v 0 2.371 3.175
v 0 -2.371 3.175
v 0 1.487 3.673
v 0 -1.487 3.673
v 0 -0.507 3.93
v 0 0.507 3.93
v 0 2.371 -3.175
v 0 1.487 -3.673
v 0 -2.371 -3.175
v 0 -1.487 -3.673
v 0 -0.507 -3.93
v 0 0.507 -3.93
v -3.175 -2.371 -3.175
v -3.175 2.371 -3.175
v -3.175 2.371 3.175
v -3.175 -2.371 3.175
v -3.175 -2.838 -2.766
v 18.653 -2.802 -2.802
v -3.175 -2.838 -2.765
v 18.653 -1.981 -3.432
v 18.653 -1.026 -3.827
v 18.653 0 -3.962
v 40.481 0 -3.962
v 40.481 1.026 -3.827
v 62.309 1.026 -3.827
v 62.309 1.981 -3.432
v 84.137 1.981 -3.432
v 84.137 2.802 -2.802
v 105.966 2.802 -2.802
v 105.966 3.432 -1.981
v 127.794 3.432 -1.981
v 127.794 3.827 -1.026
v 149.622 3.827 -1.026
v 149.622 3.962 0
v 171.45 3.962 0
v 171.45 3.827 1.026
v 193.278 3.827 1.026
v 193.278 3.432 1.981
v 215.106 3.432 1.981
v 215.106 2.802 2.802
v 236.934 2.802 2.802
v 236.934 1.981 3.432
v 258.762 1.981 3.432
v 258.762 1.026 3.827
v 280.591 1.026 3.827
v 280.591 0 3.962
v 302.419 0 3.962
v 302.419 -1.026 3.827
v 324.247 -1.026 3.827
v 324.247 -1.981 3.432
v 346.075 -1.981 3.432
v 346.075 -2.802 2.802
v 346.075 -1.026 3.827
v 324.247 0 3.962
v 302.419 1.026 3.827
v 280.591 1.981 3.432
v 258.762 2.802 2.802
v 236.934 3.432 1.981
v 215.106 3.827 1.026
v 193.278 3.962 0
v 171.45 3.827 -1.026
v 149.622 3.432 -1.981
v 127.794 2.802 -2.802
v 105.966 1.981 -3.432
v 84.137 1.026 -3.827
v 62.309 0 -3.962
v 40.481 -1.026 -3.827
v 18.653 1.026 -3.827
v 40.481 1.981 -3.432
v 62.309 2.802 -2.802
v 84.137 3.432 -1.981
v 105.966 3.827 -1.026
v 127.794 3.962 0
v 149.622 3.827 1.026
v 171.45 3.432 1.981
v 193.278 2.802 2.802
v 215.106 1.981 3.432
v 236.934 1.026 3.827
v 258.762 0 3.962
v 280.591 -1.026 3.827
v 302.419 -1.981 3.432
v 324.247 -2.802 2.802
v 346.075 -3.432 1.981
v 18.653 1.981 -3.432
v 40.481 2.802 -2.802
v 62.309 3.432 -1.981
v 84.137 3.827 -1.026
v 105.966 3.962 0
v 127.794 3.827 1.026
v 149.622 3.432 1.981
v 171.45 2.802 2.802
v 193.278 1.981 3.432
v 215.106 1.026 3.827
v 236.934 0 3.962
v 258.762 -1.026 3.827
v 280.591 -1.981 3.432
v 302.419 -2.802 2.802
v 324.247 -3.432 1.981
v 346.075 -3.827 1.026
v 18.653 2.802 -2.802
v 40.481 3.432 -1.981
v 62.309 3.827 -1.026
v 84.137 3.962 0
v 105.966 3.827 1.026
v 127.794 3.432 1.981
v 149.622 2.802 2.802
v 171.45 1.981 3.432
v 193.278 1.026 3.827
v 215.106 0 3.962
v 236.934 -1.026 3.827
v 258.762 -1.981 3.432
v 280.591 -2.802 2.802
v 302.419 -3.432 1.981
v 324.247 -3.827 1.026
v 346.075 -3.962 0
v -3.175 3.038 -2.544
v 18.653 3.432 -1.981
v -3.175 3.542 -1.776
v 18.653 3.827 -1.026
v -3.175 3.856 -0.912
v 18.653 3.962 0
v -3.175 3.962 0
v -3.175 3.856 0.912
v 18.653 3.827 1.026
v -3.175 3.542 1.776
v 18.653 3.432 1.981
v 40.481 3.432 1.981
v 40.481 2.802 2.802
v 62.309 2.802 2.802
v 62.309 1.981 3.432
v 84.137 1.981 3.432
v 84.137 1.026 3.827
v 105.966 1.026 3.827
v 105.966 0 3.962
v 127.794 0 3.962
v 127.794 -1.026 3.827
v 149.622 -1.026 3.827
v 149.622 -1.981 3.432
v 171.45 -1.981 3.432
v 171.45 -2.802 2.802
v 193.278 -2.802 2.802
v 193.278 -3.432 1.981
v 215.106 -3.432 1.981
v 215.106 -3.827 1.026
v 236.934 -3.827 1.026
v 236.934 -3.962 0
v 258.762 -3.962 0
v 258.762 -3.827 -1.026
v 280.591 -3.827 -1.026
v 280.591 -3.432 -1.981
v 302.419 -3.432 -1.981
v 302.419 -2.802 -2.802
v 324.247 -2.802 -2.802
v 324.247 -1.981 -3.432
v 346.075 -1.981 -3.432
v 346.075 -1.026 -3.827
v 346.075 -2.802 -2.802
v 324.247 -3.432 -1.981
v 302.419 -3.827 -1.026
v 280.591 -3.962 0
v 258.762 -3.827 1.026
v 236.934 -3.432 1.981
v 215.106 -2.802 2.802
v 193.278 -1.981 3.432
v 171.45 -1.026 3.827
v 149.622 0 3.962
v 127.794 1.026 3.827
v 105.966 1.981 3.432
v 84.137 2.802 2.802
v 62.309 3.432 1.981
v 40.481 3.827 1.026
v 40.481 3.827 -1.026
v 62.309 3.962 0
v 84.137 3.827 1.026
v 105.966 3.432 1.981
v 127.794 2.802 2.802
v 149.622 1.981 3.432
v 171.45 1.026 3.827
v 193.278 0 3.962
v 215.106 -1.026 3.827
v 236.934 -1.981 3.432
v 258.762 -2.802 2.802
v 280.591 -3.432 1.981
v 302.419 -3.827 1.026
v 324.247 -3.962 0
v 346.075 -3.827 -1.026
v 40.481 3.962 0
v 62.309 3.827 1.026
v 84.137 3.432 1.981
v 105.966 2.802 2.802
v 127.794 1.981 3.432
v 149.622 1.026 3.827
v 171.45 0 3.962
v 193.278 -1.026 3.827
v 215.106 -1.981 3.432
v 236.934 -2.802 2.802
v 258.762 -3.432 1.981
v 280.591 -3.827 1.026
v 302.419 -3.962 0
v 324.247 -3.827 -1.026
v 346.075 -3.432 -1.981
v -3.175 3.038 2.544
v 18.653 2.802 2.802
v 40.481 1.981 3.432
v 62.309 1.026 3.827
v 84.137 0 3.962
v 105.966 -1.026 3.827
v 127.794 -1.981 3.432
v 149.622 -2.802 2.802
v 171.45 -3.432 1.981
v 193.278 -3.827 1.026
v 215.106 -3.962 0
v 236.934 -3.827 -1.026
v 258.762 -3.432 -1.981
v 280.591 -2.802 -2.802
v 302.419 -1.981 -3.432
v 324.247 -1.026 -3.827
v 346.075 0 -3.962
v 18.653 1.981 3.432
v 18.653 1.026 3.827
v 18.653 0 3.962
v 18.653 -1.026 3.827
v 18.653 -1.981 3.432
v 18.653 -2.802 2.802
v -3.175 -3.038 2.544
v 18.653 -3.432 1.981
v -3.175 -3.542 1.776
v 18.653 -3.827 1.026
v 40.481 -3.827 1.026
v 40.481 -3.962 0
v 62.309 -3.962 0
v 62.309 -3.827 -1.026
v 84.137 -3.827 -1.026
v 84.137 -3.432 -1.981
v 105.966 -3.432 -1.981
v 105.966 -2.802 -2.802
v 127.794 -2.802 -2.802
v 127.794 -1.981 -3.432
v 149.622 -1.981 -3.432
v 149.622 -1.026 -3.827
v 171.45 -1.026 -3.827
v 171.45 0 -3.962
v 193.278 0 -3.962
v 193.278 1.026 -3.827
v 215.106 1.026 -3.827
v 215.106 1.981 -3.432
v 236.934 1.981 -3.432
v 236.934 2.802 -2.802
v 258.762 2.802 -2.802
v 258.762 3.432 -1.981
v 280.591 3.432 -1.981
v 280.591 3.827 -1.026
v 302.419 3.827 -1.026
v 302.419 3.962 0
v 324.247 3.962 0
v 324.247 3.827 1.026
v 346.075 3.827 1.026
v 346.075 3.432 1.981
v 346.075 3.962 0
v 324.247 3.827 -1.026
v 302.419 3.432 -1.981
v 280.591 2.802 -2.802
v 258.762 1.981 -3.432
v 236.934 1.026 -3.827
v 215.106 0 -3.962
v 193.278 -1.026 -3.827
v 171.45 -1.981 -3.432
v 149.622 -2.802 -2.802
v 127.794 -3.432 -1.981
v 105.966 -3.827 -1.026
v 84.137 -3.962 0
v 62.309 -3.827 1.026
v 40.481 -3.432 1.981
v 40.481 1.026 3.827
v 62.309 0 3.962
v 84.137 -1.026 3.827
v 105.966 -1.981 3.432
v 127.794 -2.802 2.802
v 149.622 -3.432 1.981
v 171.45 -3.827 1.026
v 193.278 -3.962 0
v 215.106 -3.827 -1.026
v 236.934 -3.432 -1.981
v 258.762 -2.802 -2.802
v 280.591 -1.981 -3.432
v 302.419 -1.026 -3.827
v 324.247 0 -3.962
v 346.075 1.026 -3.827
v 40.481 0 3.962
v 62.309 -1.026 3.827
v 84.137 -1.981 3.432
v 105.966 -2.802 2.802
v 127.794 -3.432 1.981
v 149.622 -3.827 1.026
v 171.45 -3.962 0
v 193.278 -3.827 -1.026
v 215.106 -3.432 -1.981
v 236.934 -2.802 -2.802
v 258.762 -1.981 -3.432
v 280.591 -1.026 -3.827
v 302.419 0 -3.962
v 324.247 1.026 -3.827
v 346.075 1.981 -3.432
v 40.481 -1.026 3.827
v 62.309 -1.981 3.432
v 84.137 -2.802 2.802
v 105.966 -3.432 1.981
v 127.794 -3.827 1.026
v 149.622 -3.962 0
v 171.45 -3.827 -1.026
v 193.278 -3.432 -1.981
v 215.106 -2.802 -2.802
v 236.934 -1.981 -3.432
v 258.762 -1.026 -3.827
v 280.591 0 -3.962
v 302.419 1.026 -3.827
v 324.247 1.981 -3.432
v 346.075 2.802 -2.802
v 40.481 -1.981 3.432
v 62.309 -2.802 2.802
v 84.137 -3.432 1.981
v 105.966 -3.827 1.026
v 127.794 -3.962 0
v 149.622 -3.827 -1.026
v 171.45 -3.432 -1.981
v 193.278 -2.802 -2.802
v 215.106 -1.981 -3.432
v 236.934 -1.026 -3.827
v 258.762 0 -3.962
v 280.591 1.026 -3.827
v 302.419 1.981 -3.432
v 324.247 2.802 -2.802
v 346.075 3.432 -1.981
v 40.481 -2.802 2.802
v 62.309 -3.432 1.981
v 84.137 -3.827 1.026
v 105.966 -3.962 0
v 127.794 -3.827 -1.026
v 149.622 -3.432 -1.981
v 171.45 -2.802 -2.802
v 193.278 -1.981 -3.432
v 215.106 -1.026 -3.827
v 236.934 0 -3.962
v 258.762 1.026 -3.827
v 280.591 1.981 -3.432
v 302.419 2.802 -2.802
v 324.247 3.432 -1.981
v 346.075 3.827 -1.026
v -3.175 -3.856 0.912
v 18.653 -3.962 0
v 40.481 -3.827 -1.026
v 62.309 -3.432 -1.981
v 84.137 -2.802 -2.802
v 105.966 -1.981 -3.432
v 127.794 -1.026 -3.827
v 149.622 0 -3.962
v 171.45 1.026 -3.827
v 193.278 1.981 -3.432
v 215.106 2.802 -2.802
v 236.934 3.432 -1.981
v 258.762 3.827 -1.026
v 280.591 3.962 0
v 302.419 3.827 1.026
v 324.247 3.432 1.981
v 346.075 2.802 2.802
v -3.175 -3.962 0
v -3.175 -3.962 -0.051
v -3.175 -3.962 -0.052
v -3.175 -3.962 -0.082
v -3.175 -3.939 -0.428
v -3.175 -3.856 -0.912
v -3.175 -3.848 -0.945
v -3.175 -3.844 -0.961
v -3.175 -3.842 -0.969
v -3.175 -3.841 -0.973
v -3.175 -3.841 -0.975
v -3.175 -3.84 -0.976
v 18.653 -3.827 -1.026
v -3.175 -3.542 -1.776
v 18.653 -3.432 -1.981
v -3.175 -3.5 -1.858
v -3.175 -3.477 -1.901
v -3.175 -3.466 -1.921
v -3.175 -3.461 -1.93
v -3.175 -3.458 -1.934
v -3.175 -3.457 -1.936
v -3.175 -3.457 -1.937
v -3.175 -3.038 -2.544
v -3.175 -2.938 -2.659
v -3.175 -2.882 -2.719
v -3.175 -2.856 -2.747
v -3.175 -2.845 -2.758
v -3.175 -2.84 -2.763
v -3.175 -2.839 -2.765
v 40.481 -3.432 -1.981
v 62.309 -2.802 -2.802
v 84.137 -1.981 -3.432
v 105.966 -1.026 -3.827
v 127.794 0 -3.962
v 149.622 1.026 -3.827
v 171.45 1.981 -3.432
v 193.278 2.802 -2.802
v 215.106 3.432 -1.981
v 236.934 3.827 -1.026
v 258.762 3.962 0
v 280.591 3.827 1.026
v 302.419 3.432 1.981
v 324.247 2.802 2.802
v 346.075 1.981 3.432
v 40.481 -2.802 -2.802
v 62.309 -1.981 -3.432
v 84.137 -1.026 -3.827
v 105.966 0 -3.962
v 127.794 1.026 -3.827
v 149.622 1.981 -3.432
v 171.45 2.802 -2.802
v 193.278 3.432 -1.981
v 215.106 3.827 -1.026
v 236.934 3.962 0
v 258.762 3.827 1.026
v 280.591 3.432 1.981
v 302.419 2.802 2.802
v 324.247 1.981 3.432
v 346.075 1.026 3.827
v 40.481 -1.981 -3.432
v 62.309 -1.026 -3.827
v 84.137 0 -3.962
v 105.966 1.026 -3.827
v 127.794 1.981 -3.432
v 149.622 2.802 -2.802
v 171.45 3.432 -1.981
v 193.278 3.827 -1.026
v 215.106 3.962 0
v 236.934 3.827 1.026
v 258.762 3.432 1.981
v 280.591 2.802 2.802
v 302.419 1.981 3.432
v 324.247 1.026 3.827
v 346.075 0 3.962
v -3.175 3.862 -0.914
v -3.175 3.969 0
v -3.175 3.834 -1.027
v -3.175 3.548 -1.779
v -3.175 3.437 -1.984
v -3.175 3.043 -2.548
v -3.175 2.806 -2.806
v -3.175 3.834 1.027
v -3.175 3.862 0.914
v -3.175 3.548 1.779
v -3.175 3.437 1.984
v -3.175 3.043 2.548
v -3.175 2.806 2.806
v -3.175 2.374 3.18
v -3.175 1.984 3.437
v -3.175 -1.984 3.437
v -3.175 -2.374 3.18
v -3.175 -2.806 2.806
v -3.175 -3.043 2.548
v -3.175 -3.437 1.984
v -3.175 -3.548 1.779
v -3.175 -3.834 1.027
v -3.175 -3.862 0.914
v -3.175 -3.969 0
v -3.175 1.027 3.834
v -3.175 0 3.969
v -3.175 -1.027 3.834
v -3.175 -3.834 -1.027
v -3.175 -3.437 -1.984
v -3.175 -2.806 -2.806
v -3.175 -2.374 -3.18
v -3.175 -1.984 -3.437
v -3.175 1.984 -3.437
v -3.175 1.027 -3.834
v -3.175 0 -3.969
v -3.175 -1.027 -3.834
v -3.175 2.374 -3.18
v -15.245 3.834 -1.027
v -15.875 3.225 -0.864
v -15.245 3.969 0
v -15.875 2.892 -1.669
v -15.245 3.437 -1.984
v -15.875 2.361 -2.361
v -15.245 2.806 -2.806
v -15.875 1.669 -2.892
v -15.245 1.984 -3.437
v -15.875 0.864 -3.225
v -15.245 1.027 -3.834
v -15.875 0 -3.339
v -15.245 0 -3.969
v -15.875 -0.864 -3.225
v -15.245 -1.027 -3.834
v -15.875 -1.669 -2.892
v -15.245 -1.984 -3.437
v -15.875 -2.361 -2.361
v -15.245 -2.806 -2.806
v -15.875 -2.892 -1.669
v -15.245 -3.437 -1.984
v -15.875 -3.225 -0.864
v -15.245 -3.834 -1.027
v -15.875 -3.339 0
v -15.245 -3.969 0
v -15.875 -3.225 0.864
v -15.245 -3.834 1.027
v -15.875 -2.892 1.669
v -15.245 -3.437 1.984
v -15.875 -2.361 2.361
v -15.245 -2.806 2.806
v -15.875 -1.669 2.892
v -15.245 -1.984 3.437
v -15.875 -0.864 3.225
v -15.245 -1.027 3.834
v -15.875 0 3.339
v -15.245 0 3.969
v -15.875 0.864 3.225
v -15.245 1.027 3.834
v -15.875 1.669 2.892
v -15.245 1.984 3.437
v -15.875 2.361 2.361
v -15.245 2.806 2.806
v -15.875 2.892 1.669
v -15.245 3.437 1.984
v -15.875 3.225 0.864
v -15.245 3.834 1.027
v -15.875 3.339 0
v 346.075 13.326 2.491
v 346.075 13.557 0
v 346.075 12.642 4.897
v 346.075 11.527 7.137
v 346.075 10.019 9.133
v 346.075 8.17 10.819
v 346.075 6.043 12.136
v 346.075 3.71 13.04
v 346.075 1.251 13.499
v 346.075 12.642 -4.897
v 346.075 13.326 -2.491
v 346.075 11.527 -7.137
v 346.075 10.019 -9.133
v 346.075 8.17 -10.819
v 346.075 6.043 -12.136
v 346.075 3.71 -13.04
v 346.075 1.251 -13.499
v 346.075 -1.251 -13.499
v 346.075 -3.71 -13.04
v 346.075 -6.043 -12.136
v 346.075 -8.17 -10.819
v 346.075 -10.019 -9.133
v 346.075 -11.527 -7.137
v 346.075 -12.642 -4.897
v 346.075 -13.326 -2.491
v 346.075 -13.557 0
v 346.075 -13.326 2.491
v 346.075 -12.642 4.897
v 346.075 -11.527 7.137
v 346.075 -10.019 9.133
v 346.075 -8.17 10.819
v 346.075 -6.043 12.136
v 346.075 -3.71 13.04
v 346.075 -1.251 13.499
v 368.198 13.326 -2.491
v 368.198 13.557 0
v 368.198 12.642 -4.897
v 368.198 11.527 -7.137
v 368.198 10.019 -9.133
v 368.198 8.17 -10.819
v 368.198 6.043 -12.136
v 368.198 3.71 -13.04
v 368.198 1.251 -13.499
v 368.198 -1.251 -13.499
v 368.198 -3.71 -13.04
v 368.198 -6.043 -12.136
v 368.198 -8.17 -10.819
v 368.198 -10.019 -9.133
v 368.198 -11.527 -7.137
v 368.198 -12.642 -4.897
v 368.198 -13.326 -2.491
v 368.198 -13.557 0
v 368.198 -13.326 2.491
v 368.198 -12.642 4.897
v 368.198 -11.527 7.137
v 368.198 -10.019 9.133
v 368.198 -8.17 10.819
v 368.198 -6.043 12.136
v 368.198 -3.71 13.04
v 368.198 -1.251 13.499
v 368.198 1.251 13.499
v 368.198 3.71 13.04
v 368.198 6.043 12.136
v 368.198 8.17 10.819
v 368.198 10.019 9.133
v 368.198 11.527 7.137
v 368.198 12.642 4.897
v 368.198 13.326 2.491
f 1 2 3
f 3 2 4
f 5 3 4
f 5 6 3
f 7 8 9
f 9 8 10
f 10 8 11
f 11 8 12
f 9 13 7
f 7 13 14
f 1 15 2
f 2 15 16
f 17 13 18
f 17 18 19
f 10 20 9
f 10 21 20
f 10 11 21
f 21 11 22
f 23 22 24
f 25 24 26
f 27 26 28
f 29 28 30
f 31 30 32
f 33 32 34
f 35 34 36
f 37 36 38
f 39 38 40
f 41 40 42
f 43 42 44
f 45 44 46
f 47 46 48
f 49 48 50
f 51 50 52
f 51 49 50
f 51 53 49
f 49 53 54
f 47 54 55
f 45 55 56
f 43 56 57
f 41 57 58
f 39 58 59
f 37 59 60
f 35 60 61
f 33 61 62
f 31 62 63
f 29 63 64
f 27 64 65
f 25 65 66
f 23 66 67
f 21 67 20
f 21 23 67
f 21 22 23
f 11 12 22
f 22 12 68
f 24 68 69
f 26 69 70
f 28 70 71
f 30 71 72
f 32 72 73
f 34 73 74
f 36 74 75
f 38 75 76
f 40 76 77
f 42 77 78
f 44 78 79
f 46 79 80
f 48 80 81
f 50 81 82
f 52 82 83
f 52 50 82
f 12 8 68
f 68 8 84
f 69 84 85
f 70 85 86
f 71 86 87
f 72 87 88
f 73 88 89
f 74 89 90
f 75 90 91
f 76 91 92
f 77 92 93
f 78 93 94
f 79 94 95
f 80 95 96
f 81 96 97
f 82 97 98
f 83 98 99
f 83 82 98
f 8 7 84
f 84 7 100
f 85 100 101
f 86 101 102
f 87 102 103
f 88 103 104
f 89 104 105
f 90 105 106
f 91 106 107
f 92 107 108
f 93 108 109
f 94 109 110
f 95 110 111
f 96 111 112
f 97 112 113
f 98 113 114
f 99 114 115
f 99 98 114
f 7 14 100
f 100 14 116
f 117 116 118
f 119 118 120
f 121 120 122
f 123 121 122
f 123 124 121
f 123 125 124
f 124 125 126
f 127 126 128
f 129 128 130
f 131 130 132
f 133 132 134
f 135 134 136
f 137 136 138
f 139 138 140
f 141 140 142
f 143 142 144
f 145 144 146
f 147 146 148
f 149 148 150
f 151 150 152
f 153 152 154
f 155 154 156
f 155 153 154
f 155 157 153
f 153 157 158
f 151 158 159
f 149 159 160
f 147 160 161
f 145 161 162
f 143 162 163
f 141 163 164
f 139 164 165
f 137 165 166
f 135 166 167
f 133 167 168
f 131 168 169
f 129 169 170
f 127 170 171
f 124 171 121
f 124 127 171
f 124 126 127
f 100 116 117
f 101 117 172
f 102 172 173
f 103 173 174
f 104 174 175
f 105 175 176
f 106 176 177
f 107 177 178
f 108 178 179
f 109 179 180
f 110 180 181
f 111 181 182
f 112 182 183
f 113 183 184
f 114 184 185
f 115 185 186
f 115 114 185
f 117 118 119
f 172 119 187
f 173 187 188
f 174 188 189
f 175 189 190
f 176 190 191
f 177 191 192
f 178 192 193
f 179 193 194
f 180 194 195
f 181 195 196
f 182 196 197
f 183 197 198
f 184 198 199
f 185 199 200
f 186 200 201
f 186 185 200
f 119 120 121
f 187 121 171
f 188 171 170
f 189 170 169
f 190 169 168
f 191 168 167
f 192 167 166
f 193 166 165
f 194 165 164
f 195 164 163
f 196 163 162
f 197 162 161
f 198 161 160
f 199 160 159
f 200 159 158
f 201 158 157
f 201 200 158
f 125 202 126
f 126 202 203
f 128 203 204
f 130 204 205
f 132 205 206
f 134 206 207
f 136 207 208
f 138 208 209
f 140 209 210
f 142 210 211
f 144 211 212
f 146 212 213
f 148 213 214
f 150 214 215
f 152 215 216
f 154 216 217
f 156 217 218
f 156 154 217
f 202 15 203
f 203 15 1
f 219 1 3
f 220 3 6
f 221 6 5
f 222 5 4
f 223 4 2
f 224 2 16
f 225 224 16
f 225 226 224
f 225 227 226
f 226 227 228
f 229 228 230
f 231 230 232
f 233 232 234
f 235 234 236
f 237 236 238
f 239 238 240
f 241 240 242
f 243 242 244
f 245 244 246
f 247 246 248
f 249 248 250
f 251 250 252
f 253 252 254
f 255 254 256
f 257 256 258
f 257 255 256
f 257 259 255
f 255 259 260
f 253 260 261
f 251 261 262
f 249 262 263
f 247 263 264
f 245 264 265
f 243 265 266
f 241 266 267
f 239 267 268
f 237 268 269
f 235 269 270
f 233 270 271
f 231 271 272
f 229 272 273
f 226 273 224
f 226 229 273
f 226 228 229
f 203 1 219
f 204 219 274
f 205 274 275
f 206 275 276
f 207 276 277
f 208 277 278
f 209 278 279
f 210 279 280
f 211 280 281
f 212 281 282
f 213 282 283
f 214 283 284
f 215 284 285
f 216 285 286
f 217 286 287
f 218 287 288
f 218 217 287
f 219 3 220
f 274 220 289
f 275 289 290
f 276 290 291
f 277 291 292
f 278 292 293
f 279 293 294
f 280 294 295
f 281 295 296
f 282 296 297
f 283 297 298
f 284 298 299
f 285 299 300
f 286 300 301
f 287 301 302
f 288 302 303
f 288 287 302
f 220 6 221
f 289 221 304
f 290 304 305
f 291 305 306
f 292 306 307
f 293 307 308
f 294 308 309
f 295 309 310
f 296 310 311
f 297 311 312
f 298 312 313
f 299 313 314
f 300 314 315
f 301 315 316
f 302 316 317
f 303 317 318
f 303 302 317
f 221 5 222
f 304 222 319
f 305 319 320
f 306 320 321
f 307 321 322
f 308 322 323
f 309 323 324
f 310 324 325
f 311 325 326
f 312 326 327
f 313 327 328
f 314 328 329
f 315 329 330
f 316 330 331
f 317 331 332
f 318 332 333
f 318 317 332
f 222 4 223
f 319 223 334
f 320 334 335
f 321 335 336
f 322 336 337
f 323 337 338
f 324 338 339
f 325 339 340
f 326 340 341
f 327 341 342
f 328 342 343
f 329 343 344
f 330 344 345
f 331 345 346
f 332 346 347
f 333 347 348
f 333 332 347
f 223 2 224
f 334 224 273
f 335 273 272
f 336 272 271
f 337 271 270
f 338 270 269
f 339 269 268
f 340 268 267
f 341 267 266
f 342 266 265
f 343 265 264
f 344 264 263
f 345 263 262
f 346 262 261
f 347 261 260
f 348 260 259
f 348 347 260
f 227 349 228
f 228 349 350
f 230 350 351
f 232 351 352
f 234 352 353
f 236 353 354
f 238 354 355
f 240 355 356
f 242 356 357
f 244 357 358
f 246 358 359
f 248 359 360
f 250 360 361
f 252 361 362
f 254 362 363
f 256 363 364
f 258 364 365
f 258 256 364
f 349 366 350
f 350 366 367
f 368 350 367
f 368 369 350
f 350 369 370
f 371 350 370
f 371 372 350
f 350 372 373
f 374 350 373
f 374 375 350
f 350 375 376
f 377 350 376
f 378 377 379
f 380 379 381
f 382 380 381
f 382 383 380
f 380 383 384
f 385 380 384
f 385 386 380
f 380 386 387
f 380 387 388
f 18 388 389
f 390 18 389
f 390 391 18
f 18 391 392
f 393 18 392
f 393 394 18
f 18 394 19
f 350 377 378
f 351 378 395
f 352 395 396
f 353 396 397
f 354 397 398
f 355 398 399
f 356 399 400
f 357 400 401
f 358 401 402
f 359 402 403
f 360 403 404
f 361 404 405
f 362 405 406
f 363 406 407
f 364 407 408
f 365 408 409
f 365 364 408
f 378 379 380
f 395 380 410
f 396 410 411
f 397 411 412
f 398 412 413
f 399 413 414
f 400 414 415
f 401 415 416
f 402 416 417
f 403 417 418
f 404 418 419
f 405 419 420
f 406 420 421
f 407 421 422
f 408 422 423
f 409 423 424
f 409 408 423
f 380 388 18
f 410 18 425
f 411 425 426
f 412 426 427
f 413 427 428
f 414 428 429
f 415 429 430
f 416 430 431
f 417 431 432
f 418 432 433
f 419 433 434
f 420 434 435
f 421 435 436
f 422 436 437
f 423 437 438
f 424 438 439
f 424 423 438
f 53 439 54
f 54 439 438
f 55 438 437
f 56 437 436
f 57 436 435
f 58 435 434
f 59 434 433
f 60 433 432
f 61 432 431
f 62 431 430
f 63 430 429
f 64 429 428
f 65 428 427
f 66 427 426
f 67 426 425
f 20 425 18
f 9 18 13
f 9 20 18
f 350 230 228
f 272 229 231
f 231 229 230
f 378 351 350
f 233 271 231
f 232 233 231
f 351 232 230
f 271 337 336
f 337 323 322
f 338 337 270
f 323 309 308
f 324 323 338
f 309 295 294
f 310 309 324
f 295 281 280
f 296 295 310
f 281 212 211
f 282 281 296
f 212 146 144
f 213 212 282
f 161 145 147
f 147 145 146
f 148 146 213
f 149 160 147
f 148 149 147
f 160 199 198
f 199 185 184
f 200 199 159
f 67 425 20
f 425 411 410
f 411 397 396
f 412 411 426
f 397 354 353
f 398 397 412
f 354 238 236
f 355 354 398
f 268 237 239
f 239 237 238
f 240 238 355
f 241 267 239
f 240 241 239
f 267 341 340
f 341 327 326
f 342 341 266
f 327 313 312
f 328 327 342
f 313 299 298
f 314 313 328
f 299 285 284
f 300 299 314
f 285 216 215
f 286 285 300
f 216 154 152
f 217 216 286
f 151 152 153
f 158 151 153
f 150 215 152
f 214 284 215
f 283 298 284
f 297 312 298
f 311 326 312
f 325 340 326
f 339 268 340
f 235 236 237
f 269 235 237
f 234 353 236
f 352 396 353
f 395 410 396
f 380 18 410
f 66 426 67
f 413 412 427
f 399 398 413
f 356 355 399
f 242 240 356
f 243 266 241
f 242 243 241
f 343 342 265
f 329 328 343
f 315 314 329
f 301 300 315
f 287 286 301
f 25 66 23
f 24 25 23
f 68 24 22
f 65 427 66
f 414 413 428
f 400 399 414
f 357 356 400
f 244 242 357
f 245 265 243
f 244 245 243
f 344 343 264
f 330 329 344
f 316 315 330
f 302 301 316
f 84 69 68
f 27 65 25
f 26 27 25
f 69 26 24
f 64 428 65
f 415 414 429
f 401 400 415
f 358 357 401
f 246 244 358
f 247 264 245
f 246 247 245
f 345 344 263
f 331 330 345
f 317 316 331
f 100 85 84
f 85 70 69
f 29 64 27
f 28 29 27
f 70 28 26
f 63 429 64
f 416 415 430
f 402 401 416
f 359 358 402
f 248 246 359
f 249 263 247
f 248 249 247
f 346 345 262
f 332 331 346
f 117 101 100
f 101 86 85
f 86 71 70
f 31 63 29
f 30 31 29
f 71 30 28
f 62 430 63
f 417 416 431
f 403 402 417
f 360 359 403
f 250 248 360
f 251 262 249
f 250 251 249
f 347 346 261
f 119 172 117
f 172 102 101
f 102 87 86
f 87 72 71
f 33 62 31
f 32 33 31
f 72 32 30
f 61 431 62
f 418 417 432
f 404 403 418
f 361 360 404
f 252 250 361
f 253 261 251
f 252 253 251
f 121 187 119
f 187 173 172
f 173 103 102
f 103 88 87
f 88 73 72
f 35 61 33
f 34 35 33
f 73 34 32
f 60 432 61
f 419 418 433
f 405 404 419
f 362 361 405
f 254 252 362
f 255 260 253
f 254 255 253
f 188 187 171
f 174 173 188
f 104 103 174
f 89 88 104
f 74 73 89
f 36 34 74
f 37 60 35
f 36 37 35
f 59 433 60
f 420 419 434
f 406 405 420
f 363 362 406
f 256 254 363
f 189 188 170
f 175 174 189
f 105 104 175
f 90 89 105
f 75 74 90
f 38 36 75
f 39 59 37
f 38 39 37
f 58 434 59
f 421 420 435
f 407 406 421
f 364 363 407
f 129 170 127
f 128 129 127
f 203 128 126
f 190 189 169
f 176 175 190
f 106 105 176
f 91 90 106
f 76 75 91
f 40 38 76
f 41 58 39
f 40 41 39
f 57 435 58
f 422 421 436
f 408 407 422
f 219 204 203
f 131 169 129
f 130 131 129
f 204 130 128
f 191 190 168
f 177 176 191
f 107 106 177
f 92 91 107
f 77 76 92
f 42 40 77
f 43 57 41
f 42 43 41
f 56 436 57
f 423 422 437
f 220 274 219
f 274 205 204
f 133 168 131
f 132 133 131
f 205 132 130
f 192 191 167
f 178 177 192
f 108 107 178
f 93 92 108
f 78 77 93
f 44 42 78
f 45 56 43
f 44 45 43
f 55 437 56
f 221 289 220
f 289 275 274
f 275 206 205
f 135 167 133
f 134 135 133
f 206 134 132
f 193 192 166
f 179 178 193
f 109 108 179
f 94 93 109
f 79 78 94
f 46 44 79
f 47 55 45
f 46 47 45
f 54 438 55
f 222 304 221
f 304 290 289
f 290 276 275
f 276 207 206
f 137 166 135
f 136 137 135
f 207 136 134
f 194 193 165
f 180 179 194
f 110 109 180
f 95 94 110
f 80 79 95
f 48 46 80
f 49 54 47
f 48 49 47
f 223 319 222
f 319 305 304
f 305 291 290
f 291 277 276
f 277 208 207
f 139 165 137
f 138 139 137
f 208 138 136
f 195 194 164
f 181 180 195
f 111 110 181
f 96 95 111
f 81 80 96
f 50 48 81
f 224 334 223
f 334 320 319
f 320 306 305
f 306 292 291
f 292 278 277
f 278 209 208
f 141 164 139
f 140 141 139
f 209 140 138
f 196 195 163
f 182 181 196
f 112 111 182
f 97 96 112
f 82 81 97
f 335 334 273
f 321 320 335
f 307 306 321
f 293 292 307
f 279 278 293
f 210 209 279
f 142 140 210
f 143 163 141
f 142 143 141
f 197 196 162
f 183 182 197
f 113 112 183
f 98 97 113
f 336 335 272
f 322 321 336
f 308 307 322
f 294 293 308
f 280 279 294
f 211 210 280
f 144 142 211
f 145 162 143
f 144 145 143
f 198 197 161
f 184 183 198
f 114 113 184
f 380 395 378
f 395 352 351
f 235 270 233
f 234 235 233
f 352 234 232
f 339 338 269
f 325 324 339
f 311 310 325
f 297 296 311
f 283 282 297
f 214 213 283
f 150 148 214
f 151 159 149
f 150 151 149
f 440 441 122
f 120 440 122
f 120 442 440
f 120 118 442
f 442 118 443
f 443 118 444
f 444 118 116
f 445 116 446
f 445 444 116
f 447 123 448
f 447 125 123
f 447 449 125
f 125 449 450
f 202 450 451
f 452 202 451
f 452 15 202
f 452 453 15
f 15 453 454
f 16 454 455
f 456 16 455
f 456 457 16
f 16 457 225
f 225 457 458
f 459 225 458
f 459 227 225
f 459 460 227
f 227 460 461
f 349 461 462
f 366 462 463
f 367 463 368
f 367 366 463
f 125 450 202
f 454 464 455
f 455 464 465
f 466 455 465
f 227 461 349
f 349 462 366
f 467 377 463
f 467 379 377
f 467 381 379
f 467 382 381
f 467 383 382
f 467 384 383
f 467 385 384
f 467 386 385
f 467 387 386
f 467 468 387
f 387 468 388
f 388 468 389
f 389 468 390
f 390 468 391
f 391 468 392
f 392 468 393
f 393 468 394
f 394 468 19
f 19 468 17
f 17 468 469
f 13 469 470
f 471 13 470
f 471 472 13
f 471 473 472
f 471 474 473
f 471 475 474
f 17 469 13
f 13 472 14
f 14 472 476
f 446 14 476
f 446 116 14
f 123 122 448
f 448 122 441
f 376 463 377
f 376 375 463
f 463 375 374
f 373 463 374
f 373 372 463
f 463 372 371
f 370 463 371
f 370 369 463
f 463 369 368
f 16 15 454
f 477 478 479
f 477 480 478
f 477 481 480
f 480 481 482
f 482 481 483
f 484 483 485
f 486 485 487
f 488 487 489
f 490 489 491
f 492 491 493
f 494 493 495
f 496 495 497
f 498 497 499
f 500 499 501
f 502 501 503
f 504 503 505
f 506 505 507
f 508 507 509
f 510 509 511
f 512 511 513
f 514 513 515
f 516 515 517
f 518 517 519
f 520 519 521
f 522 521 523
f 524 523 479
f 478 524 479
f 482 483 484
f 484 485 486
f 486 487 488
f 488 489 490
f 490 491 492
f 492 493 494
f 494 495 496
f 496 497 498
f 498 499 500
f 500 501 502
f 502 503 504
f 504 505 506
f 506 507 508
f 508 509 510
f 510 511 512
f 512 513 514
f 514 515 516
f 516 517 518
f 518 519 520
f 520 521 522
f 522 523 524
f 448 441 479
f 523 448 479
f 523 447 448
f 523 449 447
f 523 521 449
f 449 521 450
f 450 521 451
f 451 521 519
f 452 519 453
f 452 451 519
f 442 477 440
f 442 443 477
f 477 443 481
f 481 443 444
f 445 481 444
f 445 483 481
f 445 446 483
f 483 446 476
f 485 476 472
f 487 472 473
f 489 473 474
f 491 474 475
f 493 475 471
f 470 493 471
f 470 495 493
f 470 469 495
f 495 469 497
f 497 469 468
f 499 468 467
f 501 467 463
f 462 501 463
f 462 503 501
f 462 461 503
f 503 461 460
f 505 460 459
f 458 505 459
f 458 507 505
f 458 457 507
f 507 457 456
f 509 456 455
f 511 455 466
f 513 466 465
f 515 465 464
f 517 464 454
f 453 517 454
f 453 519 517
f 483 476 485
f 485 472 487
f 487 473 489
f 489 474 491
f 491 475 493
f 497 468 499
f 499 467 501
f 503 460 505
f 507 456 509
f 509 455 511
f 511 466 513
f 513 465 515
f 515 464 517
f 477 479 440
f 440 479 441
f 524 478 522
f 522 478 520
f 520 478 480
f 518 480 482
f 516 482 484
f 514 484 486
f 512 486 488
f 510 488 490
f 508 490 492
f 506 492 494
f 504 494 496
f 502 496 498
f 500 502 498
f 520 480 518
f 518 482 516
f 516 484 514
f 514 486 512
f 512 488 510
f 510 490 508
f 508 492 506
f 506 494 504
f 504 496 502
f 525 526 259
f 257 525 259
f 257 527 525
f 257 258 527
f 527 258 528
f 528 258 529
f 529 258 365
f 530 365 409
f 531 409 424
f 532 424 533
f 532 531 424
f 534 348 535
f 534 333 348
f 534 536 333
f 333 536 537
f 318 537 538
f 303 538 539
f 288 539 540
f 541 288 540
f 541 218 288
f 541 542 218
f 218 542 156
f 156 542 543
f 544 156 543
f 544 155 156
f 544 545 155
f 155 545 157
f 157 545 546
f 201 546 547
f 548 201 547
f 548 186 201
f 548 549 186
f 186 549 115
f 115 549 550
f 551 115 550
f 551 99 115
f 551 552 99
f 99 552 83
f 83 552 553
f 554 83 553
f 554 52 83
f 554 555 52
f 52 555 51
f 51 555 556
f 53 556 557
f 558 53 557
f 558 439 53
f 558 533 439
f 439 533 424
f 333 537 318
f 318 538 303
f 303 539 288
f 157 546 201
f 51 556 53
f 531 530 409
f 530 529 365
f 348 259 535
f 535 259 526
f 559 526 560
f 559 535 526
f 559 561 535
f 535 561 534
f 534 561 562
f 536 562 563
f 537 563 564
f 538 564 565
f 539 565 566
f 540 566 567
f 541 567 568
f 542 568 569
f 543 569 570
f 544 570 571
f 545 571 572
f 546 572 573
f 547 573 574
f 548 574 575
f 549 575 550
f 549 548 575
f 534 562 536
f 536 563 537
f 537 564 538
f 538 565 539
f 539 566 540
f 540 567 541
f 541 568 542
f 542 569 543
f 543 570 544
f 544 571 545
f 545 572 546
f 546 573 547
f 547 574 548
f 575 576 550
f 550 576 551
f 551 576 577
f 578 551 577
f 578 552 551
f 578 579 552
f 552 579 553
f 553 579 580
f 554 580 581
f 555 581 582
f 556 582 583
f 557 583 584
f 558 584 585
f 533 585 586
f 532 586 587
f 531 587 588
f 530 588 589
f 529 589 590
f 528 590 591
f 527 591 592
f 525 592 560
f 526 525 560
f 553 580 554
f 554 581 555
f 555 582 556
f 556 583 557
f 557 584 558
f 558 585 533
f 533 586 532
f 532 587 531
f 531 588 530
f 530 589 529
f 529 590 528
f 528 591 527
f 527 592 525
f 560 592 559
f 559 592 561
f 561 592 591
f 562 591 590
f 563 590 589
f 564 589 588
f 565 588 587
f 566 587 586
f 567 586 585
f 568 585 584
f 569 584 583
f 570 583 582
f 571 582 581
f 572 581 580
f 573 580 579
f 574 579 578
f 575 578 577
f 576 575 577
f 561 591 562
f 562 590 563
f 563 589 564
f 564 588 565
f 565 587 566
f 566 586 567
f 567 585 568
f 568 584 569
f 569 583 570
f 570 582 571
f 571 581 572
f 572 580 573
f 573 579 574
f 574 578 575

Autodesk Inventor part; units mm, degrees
sketch "Sketch_1" plane through (0, 0, 0) normal (0, 0, 1) x (1, 0, 0)
  line L0 (368.1984, 0) -> (-3.175, 0)
  line L1 (-3.175, 0) -> (-3.175, 3.9624)
  line L2 (-3.175, 3.9624) -> (346.075, 3.9624)
  line L3 (346.075, 3.9624) -> (346.075, 13.5572)
  line L4 (346.075, 13.5572) -> (368.1984, 13.5572)
  line L5 (368.1984, 13.5572) -> (368.1984, 0)
  line L6 (368.1984, 0) -> (-3.175, 0)
revolve "Revolution1" add sketch "Sketch_1" angle 360 about axis through (368.1984, 0, 0) along (1, 0, 0)
sketch "Sketch_3" plane through (0, 0, 0) normal (0, 0, 1) x (1, 0, 0)
  line L0 (-3.175, 0) -> (-15.875, 0)
  line L1 (-15.875, 0) -> (-15.875, 3.3388)
  line L2 (-15.875, 3.3388) -> (-15.2451, 3.9688)
  line L3 (-15.2451, 3.9688) -> (-3.175, 3.9688)
  line L4 (-3.175, 3.9688) -> (-3.175, 0)
  line L5 (-3.175, 0) -> (-15.875, 0)
revolve "Revolution2" add sketch "Sketch_3" angle 360 about axis through (-3.175, 0, 0) along (1, 0, 0)
thread "Thread1" size "5/16-20 UN" class "3A" standard "ANSI Unified Screw Threads" full length
sketch "Sketch_10" plane through (-3.175, 0, 0) normal (1, 0, 0) x (0, 0, -1)
  line L0 (-7.9248, 7.9248) -> (-7.9248, -7.9248)
  line L1 (-7.9248, -7.9248) -> (7.9248, -7.9248)
  line L2 (7.9248, -7.9248) -> (7.9248, 7.9248)
  line L3 (7.9248, 7.9248) -> (-7.9248, 7.9248)
  line L4 (-3.175, 3.9624) -> (-3.175, -3.9624)
  line L5 (-3.175, -3.9624) -> (3.175, -3.9624)
  line L6 (3.175, -3.9624) -> (3.175, 3.9624)
  line L7 (3.175, 3.9624) -> (-3.175, 3.9624)
extrude "Extrusion1" cut sketch "Sketch_10" along normal blind 3.175
ref_plane "rod_cp_XY" through (0, 0, 0) normal (1, 0, 0) x (0, 0, -1)
ref_plane "rod_cp_YZ" through (0, 0, 0) normal (0, 0, -1) x (0, 1, 0)
ref_plane "rod_cp_ZX" through (0, 0, 0) normal (0, 1, 0) x (1, 0, 0)
ref_plane "to_rod_clevis_XY" through (-15.875, 0, 0) normal (1, 0, 0) x (0, 0, -1)
ref_plane "to_rod_clevis_YZ" through (-15.875, 0, 0) normal (0, 0, -1) x (0, 1, 0)
ref_plane "to_rod_clevis_ZX" through (-15.875, 0, 0) normal (0, 1, 0) x (1, 0, 0)
ref_plane "rl2_XY" through (-3.175, 0, 0) normal (1, 0, 0) x (0, 0, -1)
ref_plane "rl2_YZ" through (-3.175, 0, 0) normal (0, 0, -1) x (0, 1, 0)
ref_plane "rl2_ZX" through (-3.175, 0, 0) normal (0, 1, 0) x (1, 0, 0)
ref_plane "rl1_XY" through (-15.875, 0, 0) normal (1, 0, 0) x (0, 0, -1)
ref_plane "rl1_YZ" through (-15.875, 0, 0) normal (0, 0, -1) x (0, 1, 0)
ref_plane "rl1_ZX" through (-15.875, 0, 0) normal (0, 1, 0) x (1, 0, 0)
ref_plane "thd1_XY" through (-15.875, 3.9688, 0) normal (1, 0, 0) x (0, 0, -1)
ref_plane "thd1_YZ" through (-15.875, 3.9688, 0) normal (0, 0, -1) x (0, 1, 0)
ref_plane "thd1_ZX" through (-15.875, 3.9688, 0) normal (0, 1, 0) x (1, 0, 0)
ref_plane "thd2_XY" through (-15.875, -3.9688, 0) normal (1, 0, 0) x (0, 0, -1)
ref_plane "thd2_YZ" through (-15.875, -3.9688, 0) normal (0, 0, -1) x (0, 1, 0)
ref_plane "thd2_ZX" through (-15.875, -3.9688, 0) normal (0, 1, 0) x (1, 0, 0)
ref_plane "dia1_XY" through (-3.175, 3.9624, 0) normal (1, 0, 0) x (0, 0, -1)
ref_plane "dia1_YZ" through (-3.175, 3.9624, 0) normal (0, 0, -1) x (0, 1, 0)
ref_plane "dia1_ZX" through (-3.175, 3.9624, 0) normal (0, 1, 0) x (1, 0, 0)
ref_plane "dia2_XY" through (-3.175, -3.9624, 0) normal (1, 0, 0) x (0, 0, -1)
ref_plane "dia2_YZ" through (-3.175, -3.9624, 0) normal (0, 0, -1) x (0, 1, 0)
ref_plane "dia2_ZX" through (-3.175, -3.9624, 0) normal (0, 1, 0) x (1, 0, 0)
ref_plane "wf1_XY" through (-3.175, 0, 0) normal (1, 0, 0) x (0, 0, -1)
ref_plane "wf1_YZ" through (-3.175, 0, 0) normal (0, 0, -1) x (0, 1, 0)
ref_plane "wf1_ZX" through (-3.175, 0, 0) normal (0, 1, 0) x (1, 0, 0)
ref_plane "wf2_XY" through (0, 0, 0) normal (1, 0, 0) x (0, 0, -1)
ref_plane "wf2_YZ" through (0, 0, 0) normal (0, 0, -1) x (0, 1, 0)
ref_plane "wf2_ZX" through (0, 0, 0) normal (0, 1, 0) x (1, 0, 0)
ref_plane "hh1_XY" through (395.9606, 0, 0) normal (0, 0, 1) x (1, 0, 0)
ref_plane "hh1_YZ" through (395.9606, 0, 0) normal (1, 0, 0) x (0, 1, 0)
ref_plane "hh1_ZX" through (395.9606, 0, 0) normal (0, 1, 0) x (0, 0, 1)
ref_plane "hh2_XY" through (402.3614, 0, 0) normal (0, 0, 1) x (1, 0, 0)
ref_plane "hh2_YZ" through (402.3614, 0, 0) normal (1, 0, 0) x (0, 1, 0)
ref_plane "hh2_ZX" through (402.3614, 0, 0) normal (0, 1, 0) x (0, 0, 1)
ref_plane "dia12_XY" through (0, 0, 14.1351) normal (1, 0, 0) x (0, 0, -1)
ref_plane "dia12_YZ" through (0, 0, 14.1351) normal (0, 0, -1) x (0, 1, 0)
ref_plane "dia12_ZX" through (0, 0, 14.1351) normal (0, 1, 0) x (1, 0, 0)
ref_plane "dia22_XY" through (0, 0, -14.1351) normal (1, 0, 0) x (0, 0, -1)
ref_plane "dia22_YZ" through (0, 0, -14.1351) normal (0, 0, -1) x (0, 1, 0)
ref_plane "dia22_ZX" through (0, 0, -14.1351) normal (0, 1, 0) x (1, 0, 0)
ref_plane "wfw1_XY" through (-3.175, 0, -3.175) normal (0, 1, 0) x (1, 0, 0)
ref_plane "wfw1_YZ" through (-3.175, 0, -3.175) normal (1, 0, 0) x (0, 0, -1)
ref_plane "wfw1_ZX" through (-3.175, 0, -3.175) normal (0, 0, -1) x (0, 1, 0)
ref_plane "wfw2_XY" through (-3.175, 0, 3.175) normal (0, 1, 0) x (1, 0, 0)
ref_plane "wfw2_YZ" through (-3.175, 0, 3.175) normal (1, 0, 0) x (0, 0, -1)
ref_plane "wfw2_ZX" through (-3.175, 0, 3.175) normal (0, 0, -1) x (0, 1, 0)
properties part number "0912-DX0_rod"
